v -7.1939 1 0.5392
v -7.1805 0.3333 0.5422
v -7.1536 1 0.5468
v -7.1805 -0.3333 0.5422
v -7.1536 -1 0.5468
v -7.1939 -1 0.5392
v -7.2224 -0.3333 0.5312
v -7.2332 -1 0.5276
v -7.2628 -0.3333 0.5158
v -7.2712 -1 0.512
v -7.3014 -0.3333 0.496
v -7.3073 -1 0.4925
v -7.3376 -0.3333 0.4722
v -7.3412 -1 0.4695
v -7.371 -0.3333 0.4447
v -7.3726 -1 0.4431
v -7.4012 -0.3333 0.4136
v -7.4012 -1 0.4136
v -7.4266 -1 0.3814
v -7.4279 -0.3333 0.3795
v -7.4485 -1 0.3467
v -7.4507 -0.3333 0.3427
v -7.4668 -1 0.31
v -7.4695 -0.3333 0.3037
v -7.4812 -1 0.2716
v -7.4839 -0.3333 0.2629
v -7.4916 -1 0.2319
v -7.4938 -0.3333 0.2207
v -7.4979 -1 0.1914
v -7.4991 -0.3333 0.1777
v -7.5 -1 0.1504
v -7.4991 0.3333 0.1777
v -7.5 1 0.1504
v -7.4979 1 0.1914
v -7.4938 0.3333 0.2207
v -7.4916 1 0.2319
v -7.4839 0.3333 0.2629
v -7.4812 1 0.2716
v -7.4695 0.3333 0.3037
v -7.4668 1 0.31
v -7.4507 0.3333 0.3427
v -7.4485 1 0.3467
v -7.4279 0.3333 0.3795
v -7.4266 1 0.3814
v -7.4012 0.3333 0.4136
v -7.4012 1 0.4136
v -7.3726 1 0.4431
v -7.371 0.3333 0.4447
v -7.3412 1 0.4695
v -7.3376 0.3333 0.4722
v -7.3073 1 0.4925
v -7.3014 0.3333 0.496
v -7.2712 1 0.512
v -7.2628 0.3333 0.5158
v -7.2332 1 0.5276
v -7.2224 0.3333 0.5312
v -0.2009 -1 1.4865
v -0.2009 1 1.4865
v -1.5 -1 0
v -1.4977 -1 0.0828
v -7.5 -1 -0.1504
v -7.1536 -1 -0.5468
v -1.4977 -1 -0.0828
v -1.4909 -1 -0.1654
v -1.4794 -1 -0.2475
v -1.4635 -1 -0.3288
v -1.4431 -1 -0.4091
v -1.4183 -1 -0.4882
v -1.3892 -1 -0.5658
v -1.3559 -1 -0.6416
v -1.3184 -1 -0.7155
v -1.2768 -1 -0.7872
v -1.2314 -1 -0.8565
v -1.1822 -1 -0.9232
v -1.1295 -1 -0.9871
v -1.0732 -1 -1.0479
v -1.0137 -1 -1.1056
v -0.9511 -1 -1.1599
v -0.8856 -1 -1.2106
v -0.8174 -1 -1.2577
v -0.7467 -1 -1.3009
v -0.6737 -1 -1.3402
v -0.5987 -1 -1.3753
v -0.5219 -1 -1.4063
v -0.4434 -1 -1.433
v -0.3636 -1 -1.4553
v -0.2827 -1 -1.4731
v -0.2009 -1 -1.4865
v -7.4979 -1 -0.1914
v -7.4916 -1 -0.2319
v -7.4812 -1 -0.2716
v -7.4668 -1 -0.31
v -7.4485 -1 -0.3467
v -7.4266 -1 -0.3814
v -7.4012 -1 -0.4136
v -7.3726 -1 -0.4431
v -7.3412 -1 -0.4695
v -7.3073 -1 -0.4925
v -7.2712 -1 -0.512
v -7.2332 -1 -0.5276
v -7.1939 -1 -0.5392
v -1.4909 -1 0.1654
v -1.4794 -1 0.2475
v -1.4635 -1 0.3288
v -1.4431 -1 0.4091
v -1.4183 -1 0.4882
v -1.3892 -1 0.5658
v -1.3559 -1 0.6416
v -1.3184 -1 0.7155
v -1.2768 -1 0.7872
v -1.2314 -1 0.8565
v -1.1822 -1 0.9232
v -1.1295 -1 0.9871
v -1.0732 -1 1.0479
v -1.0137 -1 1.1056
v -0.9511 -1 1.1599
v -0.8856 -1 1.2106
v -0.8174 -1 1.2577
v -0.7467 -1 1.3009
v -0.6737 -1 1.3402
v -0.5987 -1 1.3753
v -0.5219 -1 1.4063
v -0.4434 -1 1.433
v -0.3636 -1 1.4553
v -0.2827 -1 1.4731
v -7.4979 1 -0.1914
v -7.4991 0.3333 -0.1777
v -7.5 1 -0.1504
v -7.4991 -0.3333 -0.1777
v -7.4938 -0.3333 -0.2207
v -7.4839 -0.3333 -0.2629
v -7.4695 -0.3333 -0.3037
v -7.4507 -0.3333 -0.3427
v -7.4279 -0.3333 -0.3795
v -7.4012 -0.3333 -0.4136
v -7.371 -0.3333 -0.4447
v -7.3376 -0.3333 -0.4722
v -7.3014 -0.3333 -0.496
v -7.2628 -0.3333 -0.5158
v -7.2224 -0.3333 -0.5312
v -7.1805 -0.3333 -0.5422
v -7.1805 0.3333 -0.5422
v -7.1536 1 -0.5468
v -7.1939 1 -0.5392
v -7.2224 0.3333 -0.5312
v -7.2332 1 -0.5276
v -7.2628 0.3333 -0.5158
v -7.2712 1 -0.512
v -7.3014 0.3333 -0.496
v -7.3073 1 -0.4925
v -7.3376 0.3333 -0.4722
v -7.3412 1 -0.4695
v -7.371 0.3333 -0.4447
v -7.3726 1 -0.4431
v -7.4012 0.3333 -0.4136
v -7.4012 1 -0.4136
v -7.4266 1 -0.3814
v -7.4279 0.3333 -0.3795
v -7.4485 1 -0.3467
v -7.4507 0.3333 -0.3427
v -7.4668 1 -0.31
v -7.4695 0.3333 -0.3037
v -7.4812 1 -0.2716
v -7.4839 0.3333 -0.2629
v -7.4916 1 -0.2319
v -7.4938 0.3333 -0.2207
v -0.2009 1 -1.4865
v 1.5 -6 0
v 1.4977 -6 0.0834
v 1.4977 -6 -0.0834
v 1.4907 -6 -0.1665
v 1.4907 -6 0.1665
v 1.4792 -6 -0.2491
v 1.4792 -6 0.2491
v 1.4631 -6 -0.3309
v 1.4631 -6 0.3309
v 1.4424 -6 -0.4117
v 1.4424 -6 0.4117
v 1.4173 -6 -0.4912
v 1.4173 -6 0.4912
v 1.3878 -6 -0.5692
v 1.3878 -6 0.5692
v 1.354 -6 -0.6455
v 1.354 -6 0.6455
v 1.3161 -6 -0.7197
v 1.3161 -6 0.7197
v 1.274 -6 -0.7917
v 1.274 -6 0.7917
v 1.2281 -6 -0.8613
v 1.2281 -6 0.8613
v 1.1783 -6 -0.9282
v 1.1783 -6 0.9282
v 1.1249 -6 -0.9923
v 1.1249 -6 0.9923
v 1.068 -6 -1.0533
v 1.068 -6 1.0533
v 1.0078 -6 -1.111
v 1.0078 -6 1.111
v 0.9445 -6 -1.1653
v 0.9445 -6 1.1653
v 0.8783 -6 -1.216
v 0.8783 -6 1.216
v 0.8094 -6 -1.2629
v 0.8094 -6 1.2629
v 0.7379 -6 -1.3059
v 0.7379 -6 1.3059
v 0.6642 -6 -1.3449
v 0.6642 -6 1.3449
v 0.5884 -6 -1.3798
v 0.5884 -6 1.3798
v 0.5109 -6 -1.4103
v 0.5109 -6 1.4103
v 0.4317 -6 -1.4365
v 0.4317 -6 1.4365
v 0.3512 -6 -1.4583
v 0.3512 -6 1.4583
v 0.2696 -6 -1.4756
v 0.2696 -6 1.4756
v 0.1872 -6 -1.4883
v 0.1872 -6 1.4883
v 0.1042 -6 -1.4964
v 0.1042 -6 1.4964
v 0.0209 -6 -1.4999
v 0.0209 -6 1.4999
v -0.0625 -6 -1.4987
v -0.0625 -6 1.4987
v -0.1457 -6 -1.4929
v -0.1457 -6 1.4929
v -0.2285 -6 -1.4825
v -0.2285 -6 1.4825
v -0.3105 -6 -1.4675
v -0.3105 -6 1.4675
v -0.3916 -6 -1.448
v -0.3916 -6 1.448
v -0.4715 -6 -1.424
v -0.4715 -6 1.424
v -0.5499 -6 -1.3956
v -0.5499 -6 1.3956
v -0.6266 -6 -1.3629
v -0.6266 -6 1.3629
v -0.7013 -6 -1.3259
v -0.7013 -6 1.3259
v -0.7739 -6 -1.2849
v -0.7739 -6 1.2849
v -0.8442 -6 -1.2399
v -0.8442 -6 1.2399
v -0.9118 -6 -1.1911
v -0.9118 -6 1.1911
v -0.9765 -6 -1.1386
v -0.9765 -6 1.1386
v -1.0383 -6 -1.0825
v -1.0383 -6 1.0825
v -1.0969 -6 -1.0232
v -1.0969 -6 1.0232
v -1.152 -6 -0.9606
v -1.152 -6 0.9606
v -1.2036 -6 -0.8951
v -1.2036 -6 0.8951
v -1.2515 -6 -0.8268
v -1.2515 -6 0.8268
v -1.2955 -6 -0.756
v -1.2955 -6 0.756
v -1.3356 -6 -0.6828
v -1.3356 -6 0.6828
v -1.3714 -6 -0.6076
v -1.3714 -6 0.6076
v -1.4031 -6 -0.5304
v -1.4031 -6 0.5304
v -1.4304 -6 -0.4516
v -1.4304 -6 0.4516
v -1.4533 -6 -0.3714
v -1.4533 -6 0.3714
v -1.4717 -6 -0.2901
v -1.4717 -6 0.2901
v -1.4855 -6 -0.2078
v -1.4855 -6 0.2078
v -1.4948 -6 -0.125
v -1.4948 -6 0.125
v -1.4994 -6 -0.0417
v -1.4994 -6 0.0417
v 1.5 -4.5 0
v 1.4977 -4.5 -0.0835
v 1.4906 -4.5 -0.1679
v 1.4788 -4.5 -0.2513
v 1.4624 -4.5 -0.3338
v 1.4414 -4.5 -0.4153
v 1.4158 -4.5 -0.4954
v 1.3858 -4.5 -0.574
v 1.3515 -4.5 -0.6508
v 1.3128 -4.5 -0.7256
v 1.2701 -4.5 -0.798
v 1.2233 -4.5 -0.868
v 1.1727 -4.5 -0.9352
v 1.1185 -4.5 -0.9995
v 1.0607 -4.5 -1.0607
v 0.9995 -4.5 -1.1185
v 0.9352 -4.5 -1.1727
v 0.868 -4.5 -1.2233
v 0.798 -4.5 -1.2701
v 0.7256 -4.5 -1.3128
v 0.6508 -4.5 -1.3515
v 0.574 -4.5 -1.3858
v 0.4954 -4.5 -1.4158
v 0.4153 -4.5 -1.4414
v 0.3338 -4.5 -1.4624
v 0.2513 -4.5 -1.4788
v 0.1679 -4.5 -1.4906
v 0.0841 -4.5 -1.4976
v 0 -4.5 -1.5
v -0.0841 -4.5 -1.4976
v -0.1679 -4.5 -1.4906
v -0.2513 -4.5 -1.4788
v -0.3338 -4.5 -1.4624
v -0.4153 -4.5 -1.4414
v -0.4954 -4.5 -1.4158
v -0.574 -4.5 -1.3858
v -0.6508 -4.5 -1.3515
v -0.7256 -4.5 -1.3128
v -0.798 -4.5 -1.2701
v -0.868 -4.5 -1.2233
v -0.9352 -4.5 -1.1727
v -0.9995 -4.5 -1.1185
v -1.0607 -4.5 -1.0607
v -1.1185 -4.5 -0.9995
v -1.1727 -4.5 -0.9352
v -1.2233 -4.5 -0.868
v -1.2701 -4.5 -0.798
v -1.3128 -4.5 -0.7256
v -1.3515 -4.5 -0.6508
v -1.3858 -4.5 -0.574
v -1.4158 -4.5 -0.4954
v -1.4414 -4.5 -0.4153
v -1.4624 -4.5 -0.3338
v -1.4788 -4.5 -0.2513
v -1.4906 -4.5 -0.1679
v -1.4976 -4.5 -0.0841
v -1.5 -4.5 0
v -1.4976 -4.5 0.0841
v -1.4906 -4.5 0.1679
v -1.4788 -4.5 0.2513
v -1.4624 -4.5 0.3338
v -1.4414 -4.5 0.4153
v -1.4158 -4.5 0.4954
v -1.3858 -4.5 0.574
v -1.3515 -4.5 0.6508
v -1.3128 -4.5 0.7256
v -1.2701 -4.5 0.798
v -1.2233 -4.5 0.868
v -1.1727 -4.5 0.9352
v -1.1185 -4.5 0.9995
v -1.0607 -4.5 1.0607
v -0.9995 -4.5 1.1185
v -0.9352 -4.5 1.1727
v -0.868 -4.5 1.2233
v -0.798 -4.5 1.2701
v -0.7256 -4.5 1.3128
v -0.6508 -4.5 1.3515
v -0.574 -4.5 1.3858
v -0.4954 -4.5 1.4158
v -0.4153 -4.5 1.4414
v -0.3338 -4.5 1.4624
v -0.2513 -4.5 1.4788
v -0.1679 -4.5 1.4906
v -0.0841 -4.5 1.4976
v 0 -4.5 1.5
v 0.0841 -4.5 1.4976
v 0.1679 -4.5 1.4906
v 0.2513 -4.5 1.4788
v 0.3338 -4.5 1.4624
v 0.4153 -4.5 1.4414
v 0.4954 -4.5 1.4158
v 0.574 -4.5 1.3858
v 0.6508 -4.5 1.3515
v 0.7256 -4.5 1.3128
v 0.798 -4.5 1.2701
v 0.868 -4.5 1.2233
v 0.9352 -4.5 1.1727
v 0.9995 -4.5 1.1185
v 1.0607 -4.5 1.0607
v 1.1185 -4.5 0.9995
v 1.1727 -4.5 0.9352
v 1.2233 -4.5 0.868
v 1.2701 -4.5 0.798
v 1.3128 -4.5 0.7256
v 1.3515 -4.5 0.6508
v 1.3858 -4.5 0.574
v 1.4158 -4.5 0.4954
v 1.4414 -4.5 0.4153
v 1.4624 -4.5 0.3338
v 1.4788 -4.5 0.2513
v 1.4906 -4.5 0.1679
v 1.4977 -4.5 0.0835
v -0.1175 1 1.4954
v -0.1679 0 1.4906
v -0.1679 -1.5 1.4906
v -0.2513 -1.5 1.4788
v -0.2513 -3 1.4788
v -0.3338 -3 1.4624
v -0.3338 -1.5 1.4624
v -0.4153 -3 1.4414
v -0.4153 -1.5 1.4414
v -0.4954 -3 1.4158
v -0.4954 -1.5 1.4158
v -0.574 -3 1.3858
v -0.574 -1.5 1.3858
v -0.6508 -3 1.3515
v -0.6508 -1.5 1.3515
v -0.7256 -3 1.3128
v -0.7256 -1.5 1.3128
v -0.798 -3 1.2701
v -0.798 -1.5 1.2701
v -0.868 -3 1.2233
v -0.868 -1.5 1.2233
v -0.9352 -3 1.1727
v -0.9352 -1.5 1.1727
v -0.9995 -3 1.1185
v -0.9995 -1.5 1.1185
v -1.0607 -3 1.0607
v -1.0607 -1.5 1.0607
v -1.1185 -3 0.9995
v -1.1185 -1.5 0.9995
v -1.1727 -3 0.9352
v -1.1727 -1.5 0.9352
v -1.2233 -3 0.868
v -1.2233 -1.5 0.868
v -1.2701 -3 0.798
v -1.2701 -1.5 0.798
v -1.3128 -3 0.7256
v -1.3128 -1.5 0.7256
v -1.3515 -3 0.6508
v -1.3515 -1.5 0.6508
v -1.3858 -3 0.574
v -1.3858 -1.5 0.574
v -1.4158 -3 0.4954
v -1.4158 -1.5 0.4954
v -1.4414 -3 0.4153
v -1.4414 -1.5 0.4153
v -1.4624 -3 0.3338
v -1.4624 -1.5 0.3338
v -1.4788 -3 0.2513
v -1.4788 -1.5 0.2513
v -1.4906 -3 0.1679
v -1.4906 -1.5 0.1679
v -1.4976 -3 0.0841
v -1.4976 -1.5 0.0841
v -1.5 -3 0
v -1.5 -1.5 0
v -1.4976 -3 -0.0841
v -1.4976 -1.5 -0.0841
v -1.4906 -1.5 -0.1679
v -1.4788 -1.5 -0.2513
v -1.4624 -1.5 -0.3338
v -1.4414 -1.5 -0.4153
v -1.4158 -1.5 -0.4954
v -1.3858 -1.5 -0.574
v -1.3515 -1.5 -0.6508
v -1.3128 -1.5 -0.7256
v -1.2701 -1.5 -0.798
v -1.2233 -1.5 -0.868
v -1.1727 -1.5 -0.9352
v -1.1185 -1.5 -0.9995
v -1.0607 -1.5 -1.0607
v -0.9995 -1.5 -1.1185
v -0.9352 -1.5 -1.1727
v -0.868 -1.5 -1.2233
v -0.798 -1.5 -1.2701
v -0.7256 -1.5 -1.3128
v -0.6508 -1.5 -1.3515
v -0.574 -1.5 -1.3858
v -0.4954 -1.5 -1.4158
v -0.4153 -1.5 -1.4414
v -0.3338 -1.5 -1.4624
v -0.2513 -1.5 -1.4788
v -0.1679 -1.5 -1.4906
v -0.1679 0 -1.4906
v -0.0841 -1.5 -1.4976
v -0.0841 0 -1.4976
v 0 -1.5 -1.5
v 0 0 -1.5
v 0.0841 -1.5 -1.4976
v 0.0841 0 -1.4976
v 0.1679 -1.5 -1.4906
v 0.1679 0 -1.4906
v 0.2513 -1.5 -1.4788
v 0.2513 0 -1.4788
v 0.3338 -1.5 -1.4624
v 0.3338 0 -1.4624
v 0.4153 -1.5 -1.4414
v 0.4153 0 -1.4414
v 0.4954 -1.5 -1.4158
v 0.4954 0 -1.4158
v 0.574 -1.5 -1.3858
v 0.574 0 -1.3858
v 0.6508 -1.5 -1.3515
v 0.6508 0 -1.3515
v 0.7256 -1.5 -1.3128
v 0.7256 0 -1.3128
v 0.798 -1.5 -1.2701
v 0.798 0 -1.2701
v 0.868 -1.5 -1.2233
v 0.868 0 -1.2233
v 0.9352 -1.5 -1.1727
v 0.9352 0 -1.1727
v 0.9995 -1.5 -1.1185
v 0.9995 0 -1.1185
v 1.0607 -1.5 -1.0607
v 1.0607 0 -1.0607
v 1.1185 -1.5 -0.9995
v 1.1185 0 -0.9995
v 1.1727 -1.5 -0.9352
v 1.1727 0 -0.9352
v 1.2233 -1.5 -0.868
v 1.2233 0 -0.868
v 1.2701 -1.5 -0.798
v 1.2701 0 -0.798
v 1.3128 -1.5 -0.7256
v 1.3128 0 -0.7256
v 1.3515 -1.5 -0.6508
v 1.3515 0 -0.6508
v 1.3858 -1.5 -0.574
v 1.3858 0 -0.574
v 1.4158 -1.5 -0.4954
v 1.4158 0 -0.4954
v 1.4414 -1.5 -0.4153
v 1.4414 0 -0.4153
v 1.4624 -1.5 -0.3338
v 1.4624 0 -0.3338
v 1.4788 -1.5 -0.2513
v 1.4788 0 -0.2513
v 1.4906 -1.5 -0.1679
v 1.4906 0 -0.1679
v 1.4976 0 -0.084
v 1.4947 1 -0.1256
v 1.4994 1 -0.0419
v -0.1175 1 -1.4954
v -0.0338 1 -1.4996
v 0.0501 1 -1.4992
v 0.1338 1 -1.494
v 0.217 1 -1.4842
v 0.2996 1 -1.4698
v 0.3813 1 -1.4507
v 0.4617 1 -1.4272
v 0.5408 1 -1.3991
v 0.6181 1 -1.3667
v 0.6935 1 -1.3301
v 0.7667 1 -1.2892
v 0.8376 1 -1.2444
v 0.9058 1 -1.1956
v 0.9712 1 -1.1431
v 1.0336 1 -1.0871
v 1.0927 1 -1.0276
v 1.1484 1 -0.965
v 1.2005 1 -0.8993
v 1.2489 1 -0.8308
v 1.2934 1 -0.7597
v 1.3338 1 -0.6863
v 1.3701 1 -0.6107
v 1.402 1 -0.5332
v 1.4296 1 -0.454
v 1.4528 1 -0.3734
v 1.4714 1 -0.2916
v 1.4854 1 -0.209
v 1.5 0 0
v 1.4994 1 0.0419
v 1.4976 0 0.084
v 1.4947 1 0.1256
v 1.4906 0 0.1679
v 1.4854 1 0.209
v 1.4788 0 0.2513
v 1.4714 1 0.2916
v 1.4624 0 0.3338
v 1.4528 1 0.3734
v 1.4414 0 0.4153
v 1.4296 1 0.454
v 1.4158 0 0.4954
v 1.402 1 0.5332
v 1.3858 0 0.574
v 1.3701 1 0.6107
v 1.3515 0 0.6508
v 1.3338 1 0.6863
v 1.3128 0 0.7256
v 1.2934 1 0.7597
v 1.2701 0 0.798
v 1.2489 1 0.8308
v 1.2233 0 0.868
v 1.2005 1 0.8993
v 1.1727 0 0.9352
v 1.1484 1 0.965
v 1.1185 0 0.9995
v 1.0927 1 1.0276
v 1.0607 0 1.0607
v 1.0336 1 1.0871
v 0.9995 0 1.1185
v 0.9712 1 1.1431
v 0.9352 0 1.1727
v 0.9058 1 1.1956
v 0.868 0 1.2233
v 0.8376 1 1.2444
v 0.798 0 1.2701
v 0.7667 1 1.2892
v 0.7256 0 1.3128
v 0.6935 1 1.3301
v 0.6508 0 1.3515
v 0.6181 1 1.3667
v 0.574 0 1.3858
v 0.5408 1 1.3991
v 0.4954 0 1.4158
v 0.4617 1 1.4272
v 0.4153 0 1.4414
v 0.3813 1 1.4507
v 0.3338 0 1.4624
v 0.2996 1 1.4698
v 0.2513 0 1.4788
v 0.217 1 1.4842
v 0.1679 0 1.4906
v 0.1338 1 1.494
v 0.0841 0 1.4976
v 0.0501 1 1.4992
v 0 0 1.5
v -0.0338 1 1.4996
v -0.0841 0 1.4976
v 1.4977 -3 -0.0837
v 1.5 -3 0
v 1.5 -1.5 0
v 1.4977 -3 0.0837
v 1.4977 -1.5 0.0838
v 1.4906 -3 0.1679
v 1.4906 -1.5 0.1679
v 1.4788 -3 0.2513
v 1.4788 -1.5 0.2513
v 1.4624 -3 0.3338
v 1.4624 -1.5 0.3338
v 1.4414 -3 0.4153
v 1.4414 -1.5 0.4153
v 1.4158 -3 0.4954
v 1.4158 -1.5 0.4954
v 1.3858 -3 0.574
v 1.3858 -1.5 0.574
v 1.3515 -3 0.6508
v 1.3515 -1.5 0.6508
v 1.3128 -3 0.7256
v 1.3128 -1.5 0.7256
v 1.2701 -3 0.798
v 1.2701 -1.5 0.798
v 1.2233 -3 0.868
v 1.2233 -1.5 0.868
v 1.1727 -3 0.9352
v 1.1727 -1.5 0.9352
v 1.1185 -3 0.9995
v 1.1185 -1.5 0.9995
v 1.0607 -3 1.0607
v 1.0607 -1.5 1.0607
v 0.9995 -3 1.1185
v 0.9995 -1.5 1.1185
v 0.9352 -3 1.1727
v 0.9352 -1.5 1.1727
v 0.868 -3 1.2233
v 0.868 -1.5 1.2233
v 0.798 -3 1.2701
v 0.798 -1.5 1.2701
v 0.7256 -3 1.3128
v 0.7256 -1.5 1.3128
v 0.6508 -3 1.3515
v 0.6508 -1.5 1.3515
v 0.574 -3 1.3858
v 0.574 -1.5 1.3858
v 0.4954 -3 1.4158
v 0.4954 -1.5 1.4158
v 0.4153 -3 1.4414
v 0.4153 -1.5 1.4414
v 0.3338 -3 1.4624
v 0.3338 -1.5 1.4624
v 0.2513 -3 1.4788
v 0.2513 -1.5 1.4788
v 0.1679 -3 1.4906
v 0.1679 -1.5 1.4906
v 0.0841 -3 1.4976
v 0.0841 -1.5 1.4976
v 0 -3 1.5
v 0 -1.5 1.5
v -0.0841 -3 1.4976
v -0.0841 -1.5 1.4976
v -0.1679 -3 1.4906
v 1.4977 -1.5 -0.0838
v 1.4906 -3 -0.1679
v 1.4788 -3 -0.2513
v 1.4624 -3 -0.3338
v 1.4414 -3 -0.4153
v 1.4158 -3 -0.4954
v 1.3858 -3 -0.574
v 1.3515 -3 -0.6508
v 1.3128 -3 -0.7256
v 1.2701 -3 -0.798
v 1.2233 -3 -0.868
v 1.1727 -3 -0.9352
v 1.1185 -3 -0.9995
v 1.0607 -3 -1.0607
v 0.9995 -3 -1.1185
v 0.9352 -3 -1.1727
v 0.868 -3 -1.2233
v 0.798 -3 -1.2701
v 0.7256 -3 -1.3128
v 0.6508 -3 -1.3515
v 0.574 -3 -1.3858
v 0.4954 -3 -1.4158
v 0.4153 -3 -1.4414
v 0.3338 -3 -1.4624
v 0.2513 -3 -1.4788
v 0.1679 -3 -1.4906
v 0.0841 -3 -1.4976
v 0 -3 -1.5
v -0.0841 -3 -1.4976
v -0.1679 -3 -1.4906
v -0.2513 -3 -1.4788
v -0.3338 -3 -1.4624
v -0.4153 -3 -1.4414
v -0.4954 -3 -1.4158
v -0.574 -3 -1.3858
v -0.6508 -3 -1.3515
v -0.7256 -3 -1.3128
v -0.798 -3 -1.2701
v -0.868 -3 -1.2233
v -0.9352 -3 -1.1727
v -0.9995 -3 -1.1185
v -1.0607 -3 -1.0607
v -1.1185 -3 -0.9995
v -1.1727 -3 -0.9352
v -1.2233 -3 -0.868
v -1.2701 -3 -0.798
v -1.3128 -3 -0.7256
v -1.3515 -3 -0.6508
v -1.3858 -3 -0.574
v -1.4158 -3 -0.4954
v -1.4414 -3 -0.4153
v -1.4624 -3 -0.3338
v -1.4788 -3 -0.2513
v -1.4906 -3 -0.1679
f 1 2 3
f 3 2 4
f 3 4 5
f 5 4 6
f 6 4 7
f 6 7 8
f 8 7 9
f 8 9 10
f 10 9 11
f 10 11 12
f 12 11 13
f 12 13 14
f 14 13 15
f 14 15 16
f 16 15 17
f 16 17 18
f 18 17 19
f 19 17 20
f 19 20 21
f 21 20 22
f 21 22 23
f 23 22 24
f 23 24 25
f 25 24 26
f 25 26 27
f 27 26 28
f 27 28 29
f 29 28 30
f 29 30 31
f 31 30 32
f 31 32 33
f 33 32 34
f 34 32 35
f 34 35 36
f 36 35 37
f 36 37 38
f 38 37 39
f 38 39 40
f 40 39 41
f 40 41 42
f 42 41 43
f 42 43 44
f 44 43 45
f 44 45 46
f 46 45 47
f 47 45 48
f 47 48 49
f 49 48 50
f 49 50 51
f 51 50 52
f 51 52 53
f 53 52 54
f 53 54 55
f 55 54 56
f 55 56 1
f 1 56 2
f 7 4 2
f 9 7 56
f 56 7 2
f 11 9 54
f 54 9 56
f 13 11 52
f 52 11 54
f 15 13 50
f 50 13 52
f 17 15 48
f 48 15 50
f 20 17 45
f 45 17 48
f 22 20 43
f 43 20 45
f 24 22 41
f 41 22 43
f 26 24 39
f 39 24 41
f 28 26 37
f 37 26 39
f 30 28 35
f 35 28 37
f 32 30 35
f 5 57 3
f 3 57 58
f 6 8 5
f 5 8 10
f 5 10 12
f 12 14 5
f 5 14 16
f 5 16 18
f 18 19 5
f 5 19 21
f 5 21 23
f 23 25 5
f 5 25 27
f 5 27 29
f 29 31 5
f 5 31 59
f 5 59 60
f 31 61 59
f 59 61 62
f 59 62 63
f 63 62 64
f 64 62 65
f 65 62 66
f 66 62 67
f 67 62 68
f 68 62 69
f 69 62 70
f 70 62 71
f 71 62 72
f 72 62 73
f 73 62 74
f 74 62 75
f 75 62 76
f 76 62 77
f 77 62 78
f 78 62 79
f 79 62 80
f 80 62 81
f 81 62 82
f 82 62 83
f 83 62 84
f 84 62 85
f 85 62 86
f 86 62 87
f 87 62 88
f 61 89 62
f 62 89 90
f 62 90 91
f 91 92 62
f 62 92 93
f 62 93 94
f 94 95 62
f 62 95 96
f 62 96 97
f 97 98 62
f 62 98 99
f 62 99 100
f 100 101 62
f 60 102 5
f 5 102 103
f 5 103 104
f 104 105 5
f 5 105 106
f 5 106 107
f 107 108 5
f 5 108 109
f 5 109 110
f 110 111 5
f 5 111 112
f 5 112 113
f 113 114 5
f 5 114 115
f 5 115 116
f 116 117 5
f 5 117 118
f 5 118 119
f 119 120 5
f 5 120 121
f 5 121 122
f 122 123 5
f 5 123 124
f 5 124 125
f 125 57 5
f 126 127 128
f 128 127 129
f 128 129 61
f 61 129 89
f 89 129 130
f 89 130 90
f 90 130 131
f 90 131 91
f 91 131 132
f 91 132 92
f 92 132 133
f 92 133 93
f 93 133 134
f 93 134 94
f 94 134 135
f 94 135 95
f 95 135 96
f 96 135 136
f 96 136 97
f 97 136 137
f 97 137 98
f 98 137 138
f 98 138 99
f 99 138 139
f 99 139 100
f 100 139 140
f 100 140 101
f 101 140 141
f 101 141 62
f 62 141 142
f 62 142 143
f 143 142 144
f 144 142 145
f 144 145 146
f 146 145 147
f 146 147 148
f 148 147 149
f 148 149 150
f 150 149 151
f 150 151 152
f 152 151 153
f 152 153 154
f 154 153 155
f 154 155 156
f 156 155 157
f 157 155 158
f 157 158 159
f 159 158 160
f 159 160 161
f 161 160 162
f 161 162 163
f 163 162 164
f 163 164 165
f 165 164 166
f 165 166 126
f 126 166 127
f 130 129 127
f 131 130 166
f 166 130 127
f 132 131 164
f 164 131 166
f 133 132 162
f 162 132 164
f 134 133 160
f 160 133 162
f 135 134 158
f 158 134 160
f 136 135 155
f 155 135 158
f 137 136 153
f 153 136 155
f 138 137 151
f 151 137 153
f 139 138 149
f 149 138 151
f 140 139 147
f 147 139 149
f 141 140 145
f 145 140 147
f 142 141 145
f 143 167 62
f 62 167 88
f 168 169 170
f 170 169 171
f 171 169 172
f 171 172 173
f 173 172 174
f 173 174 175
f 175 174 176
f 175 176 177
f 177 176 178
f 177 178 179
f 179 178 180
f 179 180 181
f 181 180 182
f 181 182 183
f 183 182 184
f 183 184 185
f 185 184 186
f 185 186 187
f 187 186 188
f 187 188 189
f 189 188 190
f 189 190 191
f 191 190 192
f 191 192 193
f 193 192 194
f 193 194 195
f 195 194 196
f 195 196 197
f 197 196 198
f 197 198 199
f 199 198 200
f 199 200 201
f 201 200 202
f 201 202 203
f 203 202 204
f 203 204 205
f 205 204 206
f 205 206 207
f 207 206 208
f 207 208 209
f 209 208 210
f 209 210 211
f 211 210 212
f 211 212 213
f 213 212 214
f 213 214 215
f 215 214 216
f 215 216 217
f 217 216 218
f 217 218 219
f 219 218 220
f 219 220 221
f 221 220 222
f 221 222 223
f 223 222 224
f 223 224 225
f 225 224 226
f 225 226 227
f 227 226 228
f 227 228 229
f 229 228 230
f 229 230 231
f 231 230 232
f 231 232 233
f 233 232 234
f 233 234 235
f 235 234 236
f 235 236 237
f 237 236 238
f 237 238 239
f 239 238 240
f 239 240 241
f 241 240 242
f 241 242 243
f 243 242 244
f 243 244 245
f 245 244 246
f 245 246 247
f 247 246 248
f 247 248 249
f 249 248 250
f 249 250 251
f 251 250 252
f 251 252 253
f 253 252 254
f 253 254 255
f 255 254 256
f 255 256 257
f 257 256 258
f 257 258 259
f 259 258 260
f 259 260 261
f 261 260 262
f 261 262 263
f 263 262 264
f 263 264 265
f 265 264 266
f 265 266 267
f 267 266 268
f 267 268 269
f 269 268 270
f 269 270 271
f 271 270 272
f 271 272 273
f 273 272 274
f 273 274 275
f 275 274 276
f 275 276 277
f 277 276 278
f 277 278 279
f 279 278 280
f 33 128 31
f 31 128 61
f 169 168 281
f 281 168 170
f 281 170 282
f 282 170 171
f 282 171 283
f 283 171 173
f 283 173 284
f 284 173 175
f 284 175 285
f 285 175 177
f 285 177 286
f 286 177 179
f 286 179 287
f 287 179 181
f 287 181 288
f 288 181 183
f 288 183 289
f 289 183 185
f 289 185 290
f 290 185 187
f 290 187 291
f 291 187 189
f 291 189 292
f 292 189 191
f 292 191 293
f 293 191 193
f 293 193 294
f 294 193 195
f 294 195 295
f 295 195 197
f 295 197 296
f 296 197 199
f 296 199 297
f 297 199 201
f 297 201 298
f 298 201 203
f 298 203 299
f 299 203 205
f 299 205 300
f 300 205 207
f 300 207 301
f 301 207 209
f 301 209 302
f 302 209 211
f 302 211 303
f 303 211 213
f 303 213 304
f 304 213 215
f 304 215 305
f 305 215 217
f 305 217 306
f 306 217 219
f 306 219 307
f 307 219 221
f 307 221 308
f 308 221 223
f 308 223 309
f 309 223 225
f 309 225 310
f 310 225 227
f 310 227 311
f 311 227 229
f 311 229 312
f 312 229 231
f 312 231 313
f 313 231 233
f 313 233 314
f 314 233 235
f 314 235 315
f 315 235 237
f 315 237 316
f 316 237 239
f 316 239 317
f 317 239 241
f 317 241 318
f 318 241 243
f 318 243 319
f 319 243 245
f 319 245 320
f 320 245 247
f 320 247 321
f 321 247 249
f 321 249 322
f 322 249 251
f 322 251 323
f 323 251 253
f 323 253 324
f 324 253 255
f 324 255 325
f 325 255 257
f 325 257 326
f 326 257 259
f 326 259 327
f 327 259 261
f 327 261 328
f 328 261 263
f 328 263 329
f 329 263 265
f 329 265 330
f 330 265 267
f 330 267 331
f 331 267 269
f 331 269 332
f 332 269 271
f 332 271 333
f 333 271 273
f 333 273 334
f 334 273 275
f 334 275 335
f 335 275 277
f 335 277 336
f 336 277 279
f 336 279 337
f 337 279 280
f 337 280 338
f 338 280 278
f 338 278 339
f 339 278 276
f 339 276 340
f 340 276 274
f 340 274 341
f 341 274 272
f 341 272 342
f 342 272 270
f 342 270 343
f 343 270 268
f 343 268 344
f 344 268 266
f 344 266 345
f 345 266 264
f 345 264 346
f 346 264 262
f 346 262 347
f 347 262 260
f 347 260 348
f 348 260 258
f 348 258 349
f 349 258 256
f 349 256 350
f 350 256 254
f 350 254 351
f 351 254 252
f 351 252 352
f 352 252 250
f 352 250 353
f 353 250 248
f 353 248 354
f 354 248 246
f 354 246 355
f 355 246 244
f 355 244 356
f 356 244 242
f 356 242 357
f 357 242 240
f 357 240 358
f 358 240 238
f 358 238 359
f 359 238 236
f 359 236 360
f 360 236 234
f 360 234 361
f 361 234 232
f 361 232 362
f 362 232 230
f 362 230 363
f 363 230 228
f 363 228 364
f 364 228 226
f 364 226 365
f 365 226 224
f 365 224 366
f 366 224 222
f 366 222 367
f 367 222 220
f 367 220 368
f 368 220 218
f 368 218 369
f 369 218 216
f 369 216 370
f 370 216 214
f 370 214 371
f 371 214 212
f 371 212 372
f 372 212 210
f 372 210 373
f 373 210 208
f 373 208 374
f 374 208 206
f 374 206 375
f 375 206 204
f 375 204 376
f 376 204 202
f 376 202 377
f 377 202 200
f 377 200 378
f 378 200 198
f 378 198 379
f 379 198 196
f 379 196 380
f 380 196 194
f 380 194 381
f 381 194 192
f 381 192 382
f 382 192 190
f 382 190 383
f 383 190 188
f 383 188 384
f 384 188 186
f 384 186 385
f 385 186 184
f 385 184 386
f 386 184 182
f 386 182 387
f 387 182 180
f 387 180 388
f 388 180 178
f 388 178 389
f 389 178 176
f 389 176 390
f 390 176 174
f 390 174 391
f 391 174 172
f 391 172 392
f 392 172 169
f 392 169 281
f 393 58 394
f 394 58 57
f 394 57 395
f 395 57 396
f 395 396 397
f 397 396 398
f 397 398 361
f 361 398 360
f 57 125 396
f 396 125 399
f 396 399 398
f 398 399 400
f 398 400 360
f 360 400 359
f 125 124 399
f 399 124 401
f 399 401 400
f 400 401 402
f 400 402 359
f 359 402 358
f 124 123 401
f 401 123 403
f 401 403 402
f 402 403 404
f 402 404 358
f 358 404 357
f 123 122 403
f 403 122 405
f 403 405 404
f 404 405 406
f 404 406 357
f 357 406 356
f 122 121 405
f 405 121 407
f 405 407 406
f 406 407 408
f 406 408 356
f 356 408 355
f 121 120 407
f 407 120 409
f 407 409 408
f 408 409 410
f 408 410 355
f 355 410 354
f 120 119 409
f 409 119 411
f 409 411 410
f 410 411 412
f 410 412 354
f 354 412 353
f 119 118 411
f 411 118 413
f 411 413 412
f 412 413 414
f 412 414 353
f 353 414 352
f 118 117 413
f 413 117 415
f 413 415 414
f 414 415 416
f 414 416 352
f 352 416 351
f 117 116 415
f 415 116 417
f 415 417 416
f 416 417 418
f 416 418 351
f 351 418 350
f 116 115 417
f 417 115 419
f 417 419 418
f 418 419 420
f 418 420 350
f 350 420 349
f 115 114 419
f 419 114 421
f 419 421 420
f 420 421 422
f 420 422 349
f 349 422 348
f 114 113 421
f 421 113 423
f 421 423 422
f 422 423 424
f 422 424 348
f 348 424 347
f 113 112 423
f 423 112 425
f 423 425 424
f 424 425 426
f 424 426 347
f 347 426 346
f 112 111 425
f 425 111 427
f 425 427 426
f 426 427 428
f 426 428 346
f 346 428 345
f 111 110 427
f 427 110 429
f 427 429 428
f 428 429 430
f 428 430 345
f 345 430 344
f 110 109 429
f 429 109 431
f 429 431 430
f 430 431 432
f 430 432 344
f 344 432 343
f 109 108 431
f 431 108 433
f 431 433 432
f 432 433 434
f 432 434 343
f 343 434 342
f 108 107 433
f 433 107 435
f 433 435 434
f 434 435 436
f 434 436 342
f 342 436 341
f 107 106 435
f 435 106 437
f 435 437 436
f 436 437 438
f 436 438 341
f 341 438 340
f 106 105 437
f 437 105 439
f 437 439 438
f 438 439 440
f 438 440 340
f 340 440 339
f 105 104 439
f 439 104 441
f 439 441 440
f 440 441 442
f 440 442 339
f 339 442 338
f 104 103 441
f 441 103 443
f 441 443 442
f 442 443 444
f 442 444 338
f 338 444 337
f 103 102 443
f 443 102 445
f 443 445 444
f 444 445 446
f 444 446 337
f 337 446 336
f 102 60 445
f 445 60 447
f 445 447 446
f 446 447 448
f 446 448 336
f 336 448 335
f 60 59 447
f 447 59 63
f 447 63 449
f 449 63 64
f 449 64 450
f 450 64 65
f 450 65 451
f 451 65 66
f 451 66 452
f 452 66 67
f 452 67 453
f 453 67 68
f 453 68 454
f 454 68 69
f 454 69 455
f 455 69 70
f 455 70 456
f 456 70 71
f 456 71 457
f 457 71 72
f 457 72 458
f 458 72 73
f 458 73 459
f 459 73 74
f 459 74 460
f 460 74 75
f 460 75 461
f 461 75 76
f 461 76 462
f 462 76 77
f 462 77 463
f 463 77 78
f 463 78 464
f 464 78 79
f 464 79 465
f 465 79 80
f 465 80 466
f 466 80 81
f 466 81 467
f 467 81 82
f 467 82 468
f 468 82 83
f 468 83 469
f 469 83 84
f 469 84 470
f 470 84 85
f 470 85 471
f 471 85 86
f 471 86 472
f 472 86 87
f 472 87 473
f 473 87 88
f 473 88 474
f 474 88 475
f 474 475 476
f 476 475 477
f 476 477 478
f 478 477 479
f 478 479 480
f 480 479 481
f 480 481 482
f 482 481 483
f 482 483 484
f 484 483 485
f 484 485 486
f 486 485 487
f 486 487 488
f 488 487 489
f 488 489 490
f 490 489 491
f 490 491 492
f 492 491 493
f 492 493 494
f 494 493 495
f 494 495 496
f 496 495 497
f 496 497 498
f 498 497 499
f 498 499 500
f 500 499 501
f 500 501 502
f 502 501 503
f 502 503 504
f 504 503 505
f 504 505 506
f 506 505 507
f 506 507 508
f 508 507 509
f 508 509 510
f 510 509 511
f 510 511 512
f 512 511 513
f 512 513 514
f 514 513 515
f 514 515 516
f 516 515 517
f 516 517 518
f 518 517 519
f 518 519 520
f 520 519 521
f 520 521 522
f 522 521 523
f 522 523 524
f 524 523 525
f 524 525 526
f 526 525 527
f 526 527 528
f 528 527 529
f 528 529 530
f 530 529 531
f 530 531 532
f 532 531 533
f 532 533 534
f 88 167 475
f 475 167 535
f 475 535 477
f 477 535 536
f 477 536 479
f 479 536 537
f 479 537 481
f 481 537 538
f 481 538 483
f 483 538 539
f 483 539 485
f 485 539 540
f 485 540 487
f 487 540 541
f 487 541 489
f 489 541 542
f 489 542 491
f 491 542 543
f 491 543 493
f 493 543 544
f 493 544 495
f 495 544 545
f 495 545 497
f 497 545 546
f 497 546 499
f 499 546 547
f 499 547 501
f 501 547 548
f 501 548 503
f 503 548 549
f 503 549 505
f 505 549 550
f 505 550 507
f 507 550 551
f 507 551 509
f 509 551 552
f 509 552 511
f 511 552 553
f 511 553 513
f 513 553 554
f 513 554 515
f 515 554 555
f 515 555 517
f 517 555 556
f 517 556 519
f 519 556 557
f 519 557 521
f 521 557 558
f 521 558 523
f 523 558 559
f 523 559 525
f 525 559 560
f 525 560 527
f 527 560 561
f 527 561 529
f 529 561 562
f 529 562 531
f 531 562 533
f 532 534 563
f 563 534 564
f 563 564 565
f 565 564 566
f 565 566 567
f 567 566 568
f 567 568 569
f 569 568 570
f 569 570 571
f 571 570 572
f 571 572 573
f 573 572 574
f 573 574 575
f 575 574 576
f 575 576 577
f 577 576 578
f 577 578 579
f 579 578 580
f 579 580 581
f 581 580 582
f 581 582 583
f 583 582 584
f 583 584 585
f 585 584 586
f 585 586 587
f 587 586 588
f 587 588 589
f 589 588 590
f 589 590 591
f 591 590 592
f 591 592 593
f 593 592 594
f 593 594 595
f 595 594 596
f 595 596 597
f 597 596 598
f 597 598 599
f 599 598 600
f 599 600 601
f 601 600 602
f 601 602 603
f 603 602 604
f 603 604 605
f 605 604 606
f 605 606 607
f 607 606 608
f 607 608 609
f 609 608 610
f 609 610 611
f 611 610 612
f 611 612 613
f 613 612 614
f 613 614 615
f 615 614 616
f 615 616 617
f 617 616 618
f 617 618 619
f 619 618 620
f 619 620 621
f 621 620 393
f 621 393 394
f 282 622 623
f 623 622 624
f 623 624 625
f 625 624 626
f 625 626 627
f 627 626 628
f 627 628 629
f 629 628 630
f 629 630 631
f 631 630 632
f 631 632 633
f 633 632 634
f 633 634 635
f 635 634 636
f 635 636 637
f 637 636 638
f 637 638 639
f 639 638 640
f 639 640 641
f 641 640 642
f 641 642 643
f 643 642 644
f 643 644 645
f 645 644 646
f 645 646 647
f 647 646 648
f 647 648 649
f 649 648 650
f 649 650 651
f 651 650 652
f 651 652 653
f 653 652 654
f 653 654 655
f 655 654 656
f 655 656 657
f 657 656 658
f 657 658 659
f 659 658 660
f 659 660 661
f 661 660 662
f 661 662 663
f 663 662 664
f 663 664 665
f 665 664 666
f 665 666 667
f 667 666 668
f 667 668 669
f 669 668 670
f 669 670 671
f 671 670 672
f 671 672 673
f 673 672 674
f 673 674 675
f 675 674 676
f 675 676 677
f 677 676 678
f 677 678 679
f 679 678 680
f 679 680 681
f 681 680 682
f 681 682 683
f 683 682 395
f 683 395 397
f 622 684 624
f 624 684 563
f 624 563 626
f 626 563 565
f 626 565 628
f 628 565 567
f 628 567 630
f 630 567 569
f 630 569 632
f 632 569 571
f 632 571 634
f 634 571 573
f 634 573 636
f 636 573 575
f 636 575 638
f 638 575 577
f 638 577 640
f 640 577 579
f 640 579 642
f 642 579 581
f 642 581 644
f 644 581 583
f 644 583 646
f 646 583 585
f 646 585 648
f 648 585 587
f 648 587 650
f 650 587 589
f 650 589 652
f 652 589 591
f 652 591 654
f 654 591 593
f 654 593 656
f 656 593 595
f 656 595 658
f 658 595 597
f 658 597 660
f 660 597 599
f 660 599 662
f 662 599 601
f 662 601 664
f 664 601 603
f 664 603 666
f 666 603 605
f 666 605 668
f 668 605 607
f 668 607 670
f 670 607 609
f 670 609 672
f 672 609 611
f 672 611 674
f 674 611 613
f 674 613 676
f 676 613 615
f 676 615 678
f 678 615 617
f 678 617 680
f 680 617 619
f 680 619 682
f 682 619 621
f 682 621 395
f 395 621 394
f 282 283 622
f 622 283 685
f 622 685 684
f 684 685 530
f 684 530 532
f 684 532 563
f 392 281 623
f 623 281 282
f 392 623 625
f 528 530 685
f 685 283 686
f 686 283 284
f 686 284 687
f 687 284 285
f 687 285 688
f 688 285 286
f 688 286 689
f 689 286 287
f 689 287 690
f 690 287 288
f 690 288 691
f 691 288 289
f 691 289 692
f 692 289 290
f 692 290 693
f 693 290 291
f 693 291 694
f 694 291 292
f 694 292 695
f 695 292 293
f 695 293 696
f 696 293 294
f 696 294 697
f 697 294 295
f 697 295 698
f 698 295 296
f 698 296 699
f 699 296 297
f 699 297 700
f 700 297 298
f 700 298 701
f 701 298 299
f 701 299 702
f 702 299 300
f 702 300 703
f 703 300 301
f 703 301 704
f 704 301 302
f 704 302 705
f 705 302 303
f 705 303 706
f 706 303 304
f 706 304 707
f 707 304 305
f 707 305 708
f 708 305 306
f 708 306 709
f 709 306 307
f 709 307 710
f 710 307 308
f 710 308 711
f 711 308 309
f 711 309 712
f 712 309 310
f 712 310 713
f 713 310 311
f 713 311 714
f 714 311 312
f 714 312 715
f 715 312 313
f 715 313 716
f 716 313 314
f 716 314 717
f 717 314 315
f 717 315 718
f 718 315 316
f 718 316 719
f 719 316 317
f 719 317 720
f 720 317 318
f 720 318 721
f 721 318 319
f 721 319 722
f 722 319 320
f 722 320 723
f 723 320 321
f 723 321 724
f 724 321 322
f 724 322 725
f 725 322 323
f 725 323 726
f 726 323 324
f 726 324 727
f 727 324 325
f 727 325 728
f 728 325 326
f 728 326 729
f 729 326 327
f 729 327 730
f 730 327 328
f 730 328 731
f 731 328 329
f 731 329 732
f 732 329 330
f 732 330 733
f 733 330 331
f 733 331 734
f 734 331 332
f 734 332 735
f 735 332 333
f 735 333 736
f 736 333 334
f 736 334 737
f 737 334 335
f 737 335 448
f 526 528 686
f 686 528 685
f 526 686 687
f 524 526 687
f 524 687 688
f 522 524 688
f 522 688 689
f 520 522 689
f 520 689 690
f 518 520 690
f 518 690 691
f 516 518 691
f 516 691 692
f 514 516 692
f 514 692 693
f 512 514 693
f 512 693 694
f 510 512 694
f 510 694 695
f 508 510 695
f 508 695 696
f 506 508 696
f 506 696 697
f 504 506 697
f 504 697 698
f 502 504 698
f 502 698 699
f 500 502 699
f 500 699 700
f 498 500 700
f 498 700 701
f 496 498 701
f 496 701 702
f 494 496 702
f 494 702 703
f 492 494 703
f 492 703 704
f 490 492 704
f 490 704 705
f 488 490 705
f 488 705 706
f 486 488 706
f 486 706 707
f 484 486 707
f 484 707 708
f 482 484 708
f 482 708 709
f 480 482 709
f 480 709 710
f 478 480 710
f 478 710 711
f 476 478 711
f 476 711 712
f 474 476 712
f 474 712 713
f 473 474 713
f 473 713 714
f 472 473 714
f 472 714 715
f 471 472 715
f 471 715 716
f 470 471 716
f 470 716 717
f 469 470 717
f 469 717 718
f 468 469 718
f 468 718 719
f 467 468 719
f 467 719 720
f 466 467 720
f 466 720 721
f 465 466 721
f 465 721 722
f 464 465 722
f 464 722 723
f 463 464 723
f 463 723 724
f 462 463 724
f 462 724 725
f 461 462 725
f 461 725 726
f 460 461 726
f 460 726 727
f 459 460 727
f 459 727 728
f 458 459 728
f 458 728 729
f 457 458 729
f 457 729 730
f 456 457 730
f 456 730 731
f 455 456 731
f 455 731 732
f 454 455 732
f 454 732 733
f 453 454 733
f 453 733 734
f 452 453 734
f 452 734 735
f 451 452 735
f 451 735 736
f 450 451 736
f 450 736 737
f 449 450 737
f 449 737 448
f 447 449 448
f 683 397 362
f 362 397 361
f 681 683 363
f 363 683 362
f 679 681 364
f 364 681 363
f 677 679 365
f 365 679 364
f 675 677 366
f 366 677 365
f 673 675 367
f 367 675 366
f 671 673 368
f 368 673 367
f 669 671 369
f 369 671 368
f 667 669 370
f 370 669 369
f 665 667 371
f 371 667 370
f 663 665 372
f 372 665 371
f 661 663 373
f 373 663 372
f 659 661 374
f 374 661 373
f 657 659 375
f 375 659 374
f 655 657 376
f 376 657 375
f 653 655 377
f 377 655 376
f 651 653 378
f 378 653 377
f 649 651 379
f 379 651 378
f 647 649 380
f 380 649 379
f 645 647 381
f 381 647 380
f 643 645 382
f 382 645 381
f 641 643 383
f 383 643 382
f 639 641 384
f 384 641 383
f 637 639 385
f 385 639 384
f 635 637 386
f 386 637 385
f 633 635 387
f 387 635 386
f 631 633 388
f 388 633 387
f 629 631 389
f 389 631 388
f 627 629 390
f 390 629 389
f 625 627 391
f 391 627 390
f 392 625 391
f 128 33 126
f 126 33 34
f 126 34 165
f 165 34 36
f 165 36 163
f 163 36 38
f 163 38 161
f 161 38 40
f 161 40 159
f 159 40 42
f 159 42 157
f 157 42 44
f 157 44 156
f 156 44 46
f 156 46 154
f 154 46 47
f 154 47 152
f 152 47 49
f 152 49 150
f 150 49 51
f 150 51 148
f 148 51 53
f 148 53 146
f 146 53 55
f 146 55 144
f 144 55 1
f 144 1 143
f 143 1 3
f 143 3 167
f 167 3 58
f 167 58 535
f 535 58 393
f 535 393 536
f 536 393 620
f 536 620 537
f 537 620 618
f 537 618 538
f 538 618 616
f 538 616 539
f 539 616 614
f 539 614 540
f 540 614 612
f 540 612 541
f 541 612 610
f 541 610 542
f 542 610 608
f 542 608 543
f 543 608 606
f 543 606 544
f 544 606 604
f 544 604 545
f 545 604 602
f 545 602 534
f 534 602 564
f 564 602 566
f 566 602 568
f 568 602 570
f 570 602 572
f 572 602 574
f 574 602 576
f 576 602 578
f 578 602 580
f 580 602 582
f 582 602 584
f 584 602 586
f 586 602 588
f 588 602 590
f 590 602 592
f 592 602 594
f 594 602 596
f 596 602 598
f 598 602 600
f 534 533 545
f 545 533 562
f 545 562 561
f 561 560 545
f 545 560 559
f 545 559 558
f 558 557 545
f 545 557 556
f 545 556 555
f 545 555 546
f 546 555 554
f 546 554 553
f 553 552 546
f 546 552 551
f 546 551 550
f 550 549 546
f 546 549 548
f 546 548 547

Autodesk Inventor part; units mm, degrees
ref_plane "YZ Plane" through (0, 0, 0) normal (1, 0, 0) x (0, 1, 0)
ref_plane "XZ Plane" through (0, 0, 0) normal (0, 1, 0) x (-1, 0, 0)
ref_plane "XY Plane" through (0, 0, 0) normal (0, 0, 1) x (1, 0, 0)
sketch "Sketch1" plane through (0, 0, 0) normal (0, 1, 0) x (-1, 0, 0)
  circle A0 centre (0, 0) radius 1.5
  line L0 (0.2009, -1.4865) -> (7.5, -0.5)
  line L1 (7.5, 0.5) -> (0.2009, 1.4865)
  line L2 (7.5, 0.5) -> (7.5, -0.5)
  point P0 (7.5, 0)
  dimension "d2" = 3
  dimension "d13" = 7.5
  dimension "d14" = 1
extrude "Extrusion1" add sketch "Sketch1" along normal mid plane 2
sketch "Sketch2" plane through (0, -1, 0) normal (0, 1, 0) x (1, 0, 0)
  arc A0 (-0.2009, -1.4865) -> (-0.2009, 1.4865) centre (0, 0) ccw projected
  circle A1 centre (0, 0) radius 1.5
extrude "Extrusion2" add sketch "Sketch2" against normal blind 5
fillet "Fillet1" radius 0.4 2 edges at (-7.5, 0, -0.5) (-7.5, 0, 0.5)
properties part number "Pawl2"
